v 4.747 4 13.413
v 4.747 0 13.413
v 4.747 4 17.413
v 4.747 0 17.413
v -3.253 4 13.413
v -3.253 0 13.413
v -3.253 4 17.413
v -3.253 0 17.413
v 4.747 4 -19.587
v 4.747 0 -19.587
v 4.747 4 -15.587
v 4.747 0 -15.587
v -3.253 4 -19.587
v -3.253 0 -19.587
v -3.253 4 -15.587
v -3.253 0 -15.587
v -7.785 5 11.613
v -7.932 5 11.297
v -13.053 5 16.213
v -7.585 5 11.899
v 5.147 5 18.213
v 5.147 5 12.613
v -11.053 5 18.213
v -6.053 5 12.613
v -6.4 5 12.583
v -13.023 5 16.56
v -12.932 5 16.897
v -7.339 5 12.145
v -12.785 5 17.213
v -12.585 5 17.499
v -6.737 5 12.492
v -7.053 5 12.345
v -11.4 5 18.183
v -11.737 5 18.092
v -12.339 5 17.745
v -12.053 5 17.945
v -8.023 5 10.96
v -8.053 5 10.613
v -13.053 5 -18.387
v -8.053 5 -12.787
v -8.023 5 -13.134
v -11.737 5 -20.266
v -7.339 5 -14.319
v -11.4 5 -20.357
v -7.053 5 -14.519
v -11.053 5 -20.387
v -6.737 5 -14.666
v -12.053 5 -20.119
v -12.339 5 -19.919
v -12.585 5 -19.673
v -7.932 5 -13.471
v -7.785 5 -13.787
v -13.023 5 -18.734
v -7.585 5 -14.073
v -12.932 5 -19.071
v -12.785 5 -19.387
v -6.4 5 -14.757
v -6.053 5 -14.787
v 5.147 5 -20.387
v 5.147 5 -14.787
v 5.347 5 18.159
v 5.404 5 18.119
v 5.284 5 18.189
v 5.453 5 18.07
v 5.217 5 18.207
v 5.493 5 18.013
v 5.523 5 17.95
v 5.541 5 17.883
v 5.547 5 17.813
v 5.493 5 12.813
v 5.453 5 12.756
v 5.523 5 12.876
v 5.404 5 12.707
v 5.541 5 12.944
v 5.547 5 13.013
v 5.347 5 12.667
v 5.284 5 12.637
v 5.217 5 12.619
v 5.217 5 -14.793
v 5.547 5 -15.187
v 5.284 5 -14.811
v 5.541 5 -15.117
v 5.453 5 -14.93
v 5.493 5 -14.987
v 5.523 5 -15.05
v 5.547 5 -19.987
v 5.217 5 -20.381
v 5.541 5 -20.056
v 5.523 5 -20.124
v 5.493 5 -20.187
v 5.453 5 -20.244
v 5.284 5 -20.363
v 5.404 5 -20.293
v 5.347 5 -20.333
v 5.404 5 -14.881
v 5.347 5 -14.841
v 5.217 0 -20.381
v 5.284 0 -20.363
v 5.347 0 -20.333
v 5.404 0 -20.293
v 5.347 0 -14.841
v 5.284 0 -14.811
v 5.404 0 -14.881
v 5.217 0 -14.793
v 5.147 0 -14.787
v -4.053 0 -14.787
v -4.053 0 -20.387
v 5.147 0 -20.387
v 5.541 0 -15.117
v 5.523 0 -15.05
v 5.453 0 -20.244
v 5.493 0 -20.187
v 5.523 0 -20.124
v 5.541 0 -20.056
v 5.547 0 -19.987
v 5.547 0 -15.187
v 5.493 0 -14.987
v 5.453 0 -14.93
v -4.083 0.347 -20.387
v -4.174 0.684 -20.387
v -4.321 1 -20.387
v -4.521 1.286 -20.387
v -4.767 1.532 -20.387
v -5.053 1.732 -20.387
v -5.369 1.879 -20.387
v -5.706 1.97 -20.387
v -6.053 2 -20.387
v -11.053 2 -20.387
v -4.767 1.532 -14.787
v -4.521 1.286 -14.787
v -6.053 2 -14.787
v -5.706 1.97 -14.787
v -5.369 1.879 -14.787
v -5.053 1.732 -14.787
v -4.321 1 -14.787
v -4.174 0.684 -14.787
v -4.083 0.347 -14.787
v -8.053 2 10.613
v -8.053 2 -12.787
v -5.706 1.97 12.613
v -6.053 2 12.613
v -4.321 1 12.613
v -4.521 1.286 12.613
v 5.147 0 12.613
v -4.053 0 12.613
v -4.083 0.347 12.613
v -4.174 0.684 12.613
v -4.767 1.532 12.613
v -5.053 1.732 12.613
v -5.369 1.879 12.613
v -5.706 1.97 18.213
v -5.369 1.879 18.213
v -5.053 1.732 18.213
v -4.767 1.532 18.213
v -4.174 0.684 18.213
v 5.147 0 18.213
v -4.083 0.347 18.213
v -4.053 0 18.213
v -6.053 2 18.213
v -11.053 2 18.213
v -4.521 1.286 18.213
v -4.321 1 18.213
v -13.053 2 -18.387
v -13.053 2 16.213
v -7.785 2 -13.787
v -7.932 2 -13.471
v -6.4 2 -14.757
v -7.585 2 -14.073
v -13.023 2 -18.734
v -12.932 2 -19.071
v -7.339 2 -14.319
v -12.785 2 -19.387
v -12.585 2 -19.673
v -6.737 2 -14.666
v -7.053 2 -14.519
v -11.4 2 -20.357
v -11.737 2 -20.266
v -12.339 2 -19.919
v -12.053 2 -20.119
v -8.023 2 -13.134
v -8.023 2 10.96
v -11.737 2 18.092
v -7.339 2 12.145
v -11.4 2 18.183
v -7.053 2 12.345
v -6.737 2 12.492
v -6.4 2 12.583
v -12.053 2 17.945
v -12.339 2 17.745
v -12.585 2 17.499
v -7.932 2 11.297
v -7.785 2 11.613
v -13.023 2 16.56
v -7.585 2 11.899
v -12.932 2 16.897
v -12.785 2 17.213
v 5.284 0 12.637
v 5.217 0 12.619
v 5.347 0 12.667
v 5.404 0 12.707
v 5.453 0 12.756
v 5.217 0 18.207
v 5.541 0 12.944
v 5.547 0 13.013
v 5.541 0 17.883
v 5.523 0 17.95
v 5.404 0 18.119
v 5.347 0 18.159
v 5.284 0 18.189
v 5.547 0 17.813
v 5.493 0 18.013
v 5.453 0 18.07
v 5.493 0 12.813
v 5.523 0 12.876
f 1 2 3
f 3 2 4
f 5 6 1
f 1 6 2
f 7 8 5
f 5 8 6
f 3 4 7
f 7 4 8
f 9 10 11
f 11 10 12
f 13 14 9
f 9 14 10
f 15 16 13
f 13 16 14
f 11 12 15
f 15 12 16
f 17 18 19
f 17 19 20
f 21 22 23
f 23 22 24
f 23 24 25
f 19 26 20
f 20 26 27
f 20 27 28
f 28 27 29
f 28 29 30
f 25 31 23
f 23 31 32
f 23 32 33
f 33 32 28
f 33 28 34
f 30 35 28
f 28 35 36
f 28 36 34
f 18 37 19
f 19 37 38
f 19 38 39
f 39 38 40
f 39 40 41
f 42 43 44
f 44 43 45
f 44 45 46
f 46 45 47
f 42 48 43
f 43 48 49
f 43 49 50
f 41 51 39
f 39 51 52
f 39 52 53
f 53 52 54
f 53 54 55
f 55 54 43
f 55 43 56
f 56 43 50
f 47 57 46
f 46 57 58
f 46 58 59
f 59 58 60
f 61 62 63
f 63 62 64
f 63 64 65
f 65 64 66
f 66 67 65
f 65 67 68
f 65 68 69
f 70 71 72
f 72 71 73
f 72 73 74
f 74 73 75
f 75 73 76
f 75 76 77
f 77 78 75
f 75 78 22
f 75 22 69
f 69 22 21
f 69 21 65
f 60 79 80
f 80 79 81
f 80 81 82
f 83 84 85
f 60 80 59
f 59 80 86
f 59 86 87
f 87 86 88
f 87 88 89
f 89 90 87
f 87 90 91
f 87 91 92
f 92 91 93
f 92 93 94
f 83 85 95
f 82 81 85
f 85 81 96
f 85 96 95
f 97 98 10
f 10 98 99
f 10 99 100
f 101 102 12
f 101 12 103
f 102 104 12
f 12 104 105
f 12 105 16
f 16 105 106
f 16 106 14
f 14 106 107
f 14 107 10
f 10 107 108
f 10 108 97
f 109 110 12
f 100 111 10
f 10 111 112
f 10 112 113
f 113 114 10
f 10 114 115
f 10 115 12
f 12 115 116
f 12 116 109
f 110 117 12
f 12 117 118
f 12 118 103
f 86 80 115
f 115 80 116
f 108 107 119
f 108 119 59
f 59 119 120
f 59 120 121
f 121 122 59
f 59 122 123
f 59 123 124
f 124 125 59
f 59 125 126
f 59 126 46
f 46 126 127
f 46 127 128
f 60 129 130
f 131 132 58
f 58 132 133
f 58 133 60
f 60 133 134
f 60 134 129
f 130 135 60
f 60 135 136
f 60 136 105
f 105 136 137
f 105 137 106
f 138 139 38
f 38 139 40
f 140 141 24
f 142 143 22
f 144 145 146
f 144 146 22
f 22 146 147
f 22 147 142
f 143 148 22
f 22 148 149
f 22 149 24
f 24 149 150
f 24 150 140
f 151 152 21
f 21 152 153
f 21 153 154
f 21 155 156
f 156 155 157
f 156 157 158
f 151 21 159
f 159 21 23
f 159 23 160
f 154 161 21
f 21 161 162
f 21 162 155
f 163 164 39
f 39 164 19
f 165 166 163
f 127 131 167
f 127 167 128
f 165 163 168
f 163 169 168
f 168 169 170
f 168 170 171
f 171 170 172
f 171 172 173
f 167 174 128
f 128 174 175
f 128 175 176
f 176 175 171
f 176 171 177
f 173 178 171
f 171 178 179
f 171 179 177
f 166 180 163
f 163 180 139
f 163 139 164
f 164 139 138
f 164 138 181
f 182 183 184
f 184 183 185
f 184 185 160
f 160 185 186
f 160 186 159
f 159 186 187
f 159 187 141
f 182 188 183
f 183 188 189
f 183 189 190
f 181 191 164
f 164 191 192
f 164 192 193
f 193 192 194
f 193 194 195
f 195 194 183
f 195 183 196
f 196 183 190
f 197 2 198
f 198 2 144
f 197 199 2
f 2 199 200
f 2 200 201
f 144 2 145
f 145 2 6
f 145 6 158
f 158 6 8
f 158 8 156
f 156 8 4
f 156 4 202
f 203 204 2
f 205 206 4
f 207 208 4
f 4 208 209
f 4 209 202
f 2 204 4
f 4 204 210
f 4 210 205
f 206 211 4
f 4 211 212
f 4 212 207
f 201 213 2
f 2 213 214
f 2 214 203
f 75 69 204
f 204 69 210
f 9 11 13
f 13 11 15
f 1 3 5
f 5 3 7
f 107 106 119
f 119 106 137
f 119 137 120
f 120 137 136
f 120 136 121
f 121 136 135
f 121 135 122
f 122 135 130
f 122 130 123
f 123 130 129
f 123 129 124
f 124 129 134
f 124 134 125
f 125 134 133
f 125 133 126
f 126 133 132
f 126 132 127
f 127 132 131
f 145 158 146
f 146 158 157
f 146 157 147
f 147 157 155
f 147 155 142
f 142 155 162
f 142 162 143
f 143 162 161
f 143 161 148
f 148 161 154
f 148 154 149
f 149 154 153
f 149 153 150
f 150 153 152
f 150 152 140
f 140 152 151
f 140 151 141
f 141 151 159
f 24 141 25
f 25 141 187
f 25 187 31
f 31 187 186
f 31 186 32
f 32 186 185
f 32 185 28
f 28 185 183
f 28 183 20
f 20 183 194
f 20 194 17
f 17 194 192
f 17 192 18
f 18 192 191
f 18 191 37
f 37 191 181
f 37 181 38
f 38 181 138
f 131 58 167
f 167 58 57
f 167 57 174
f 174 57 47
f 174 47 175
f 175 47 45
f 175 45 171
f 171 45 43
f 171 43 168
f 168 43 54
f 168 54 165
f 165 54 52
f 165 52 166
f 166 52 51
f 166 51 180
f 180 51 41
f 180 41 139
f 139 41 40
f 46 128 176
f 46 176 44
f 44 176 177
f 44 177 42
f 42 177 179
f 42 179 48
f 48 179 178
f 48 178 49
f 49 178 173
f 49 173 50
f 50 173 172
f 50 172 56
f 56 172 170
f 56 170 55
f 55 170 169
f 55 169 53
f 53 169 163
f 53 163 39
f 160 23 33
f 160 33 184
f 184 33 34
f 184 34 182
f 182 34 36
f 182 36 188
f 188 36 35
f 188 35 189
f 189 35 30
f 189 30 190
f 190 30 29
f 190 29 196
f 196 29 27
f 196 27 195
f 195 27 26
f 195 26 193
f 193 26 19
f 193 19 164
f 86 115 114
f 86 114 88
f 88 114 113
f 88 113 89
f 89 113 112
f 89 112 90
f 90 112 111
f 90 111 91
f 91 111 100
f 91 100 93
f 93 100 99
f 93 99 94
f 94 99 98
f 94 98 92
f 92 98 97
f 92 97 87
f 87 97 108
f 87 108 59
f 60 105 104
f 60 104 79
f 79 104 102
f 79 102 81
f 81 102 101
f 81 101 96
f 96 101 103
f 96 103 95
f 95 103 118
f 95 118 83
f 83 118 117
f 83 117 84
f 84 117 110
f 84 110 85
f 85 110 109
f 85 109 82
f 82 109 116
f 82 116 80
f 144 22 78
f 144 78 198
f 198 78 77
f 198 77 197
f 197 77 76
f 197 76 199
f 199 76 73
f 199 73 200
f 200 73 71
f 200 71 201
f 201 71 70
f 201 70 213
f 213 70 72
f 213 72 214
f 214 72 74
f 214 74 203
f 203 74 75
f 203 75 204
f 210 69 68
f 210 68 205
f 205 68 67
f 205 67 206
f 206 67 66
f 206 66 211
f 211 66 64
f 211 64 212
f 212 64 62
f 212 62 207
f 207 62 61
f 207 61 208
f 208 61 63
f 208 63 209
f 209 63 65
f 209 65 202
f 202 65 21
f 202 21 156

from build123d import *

# Parameters (mm, degrees)
SKETCH_1_W        = 9.6
SKETCH_1_H        = 5.6
SKETCH_1_W_2      = 8
SKETCH_1_H_2      = 4
EXTRUDE_1_DEPTH   = 5
EXTRUDE_1_2_DEPTH = 5
EXTRUDE_1_3_DEPTH = 3
SKETCH_3_W        = 8
SKETCH_3_H        = 4
EXTRUDE_2_DEPTH   = 1
FILLET_1_R        = 2
FILLET_2_R        = 0.4


with BuildPart() as part:
    # Эскиз1 → Extrude 1 (new body)
    with BuildSketch(Plane(origin=(0, 0, 0), x_dir=(1, 0, 0), z_dir=(0, 1, 0))):
        with Locations((0.747071049, 17.586951222)):
            Rectangle(SKETCH_1_W, SKETCH_1_H)
        with Locations((0.747071049, 17.586951222)):
            Rectangle(SKETCH_1_W_2, SKETCH_1_H_2, mode=Mode.SUBTRACT)
    extrude(amount=EXTRUDE_1_DEPTH)



with BuildPart() as body_2:
    # Эскиз1 → Extrude 1 2 (new body)
    with BuildSketch(Plane(origin=(0, 0, 0), x_dir=(1, 0, 0), z_dir=(0, 1, 0))):
        with Locations((0.747071049, -15.413048778)):
            Rectangle(SKETCH_1_W, SKETCH_1_H)
        with Locations((0.747071049, -15.413048778)):
            Rectangle(SKETCH_1_W_2, SKETCH_1_H_2, mode=Mode.SUBTRACT)
    extrude(amount=EXTRUDE_1_2_DEPTH)


with BuildPart() as part_1:
    add(part.part)

    add(body_2.part)  # Extrude 1 3 merges body 2
    # Эскиз2 → Extrude 1 3 (add)
    with BuildSketch(Plane(origin=(0, 5, 0), x_dir=(1, 0, 0), z_dir=(0, 1, 0))):
        Polygon((-4.052928951, 20.386951222), (-13.052928951, 20.386951222), (-13.052928951, -18.213048778), (-4.052928951, -18.213048778), (-4.052928951, -12.613048778), (-8.052928951, -12.613048778), (-8.052928951, 14.786951222), (-4.052928951, 14.786951222), align=None)
    extrude(amount=-EXTRUDE_1_3_DEPTH)

    # Эскиз3 → Бобышка-Вытянуть2 (add)
    with BuildSketch(Plane(origin=(0, 5, 0), x_dir=(1, 0, 0), z_dir=(0, 1, 0))):
        with Locations((0.747071049, 17.586951222)):
            Rectangle(SKETCH_3_W, SKETCH_3_H)
        with Locations((0.747071049, -15.413048778)):
            Rectangle(SKETCH_3_W, SKETCH_3_H)
    extrude(amount=-EXTRUDE_2_DEPTH)

    # Скругление1
    fillet_1_edges = [part_1.edges().sort_by_distance(p)[0] for p in [
        (-4.052928951, 2, -17.586951222),
        (-4.052928951, 2, 15.413048778),
        (-8.052928951, 3.5, 12.613048778),
        (-8.052928951, 3.5, -14.786951222),
        (-13.052928951, 3.5, -20.386951222),
        (-13.052928951, 3.5, 18.213048778),
    ]]
    fillet(fillet_1_edges, radius=FILLET_1_R - 0.0001)  # a hair under: the kernel refuses the full size

    # Скругление2
    fillet_2_edges = [part_1.edges().sort_by_distance(p)[0] for p in [
        (5.547071049, 2.5, 18.213048778),
        (5.547071049, 2.5, 12.613048778),
        (5.547071049, 2.5, -14.786951222),
        (5.547071049, 2.5, -20.386951222),
    ]]
    fillet(fillet_2_edges, radius=FILLET_2_R)


solid = part_1.part
